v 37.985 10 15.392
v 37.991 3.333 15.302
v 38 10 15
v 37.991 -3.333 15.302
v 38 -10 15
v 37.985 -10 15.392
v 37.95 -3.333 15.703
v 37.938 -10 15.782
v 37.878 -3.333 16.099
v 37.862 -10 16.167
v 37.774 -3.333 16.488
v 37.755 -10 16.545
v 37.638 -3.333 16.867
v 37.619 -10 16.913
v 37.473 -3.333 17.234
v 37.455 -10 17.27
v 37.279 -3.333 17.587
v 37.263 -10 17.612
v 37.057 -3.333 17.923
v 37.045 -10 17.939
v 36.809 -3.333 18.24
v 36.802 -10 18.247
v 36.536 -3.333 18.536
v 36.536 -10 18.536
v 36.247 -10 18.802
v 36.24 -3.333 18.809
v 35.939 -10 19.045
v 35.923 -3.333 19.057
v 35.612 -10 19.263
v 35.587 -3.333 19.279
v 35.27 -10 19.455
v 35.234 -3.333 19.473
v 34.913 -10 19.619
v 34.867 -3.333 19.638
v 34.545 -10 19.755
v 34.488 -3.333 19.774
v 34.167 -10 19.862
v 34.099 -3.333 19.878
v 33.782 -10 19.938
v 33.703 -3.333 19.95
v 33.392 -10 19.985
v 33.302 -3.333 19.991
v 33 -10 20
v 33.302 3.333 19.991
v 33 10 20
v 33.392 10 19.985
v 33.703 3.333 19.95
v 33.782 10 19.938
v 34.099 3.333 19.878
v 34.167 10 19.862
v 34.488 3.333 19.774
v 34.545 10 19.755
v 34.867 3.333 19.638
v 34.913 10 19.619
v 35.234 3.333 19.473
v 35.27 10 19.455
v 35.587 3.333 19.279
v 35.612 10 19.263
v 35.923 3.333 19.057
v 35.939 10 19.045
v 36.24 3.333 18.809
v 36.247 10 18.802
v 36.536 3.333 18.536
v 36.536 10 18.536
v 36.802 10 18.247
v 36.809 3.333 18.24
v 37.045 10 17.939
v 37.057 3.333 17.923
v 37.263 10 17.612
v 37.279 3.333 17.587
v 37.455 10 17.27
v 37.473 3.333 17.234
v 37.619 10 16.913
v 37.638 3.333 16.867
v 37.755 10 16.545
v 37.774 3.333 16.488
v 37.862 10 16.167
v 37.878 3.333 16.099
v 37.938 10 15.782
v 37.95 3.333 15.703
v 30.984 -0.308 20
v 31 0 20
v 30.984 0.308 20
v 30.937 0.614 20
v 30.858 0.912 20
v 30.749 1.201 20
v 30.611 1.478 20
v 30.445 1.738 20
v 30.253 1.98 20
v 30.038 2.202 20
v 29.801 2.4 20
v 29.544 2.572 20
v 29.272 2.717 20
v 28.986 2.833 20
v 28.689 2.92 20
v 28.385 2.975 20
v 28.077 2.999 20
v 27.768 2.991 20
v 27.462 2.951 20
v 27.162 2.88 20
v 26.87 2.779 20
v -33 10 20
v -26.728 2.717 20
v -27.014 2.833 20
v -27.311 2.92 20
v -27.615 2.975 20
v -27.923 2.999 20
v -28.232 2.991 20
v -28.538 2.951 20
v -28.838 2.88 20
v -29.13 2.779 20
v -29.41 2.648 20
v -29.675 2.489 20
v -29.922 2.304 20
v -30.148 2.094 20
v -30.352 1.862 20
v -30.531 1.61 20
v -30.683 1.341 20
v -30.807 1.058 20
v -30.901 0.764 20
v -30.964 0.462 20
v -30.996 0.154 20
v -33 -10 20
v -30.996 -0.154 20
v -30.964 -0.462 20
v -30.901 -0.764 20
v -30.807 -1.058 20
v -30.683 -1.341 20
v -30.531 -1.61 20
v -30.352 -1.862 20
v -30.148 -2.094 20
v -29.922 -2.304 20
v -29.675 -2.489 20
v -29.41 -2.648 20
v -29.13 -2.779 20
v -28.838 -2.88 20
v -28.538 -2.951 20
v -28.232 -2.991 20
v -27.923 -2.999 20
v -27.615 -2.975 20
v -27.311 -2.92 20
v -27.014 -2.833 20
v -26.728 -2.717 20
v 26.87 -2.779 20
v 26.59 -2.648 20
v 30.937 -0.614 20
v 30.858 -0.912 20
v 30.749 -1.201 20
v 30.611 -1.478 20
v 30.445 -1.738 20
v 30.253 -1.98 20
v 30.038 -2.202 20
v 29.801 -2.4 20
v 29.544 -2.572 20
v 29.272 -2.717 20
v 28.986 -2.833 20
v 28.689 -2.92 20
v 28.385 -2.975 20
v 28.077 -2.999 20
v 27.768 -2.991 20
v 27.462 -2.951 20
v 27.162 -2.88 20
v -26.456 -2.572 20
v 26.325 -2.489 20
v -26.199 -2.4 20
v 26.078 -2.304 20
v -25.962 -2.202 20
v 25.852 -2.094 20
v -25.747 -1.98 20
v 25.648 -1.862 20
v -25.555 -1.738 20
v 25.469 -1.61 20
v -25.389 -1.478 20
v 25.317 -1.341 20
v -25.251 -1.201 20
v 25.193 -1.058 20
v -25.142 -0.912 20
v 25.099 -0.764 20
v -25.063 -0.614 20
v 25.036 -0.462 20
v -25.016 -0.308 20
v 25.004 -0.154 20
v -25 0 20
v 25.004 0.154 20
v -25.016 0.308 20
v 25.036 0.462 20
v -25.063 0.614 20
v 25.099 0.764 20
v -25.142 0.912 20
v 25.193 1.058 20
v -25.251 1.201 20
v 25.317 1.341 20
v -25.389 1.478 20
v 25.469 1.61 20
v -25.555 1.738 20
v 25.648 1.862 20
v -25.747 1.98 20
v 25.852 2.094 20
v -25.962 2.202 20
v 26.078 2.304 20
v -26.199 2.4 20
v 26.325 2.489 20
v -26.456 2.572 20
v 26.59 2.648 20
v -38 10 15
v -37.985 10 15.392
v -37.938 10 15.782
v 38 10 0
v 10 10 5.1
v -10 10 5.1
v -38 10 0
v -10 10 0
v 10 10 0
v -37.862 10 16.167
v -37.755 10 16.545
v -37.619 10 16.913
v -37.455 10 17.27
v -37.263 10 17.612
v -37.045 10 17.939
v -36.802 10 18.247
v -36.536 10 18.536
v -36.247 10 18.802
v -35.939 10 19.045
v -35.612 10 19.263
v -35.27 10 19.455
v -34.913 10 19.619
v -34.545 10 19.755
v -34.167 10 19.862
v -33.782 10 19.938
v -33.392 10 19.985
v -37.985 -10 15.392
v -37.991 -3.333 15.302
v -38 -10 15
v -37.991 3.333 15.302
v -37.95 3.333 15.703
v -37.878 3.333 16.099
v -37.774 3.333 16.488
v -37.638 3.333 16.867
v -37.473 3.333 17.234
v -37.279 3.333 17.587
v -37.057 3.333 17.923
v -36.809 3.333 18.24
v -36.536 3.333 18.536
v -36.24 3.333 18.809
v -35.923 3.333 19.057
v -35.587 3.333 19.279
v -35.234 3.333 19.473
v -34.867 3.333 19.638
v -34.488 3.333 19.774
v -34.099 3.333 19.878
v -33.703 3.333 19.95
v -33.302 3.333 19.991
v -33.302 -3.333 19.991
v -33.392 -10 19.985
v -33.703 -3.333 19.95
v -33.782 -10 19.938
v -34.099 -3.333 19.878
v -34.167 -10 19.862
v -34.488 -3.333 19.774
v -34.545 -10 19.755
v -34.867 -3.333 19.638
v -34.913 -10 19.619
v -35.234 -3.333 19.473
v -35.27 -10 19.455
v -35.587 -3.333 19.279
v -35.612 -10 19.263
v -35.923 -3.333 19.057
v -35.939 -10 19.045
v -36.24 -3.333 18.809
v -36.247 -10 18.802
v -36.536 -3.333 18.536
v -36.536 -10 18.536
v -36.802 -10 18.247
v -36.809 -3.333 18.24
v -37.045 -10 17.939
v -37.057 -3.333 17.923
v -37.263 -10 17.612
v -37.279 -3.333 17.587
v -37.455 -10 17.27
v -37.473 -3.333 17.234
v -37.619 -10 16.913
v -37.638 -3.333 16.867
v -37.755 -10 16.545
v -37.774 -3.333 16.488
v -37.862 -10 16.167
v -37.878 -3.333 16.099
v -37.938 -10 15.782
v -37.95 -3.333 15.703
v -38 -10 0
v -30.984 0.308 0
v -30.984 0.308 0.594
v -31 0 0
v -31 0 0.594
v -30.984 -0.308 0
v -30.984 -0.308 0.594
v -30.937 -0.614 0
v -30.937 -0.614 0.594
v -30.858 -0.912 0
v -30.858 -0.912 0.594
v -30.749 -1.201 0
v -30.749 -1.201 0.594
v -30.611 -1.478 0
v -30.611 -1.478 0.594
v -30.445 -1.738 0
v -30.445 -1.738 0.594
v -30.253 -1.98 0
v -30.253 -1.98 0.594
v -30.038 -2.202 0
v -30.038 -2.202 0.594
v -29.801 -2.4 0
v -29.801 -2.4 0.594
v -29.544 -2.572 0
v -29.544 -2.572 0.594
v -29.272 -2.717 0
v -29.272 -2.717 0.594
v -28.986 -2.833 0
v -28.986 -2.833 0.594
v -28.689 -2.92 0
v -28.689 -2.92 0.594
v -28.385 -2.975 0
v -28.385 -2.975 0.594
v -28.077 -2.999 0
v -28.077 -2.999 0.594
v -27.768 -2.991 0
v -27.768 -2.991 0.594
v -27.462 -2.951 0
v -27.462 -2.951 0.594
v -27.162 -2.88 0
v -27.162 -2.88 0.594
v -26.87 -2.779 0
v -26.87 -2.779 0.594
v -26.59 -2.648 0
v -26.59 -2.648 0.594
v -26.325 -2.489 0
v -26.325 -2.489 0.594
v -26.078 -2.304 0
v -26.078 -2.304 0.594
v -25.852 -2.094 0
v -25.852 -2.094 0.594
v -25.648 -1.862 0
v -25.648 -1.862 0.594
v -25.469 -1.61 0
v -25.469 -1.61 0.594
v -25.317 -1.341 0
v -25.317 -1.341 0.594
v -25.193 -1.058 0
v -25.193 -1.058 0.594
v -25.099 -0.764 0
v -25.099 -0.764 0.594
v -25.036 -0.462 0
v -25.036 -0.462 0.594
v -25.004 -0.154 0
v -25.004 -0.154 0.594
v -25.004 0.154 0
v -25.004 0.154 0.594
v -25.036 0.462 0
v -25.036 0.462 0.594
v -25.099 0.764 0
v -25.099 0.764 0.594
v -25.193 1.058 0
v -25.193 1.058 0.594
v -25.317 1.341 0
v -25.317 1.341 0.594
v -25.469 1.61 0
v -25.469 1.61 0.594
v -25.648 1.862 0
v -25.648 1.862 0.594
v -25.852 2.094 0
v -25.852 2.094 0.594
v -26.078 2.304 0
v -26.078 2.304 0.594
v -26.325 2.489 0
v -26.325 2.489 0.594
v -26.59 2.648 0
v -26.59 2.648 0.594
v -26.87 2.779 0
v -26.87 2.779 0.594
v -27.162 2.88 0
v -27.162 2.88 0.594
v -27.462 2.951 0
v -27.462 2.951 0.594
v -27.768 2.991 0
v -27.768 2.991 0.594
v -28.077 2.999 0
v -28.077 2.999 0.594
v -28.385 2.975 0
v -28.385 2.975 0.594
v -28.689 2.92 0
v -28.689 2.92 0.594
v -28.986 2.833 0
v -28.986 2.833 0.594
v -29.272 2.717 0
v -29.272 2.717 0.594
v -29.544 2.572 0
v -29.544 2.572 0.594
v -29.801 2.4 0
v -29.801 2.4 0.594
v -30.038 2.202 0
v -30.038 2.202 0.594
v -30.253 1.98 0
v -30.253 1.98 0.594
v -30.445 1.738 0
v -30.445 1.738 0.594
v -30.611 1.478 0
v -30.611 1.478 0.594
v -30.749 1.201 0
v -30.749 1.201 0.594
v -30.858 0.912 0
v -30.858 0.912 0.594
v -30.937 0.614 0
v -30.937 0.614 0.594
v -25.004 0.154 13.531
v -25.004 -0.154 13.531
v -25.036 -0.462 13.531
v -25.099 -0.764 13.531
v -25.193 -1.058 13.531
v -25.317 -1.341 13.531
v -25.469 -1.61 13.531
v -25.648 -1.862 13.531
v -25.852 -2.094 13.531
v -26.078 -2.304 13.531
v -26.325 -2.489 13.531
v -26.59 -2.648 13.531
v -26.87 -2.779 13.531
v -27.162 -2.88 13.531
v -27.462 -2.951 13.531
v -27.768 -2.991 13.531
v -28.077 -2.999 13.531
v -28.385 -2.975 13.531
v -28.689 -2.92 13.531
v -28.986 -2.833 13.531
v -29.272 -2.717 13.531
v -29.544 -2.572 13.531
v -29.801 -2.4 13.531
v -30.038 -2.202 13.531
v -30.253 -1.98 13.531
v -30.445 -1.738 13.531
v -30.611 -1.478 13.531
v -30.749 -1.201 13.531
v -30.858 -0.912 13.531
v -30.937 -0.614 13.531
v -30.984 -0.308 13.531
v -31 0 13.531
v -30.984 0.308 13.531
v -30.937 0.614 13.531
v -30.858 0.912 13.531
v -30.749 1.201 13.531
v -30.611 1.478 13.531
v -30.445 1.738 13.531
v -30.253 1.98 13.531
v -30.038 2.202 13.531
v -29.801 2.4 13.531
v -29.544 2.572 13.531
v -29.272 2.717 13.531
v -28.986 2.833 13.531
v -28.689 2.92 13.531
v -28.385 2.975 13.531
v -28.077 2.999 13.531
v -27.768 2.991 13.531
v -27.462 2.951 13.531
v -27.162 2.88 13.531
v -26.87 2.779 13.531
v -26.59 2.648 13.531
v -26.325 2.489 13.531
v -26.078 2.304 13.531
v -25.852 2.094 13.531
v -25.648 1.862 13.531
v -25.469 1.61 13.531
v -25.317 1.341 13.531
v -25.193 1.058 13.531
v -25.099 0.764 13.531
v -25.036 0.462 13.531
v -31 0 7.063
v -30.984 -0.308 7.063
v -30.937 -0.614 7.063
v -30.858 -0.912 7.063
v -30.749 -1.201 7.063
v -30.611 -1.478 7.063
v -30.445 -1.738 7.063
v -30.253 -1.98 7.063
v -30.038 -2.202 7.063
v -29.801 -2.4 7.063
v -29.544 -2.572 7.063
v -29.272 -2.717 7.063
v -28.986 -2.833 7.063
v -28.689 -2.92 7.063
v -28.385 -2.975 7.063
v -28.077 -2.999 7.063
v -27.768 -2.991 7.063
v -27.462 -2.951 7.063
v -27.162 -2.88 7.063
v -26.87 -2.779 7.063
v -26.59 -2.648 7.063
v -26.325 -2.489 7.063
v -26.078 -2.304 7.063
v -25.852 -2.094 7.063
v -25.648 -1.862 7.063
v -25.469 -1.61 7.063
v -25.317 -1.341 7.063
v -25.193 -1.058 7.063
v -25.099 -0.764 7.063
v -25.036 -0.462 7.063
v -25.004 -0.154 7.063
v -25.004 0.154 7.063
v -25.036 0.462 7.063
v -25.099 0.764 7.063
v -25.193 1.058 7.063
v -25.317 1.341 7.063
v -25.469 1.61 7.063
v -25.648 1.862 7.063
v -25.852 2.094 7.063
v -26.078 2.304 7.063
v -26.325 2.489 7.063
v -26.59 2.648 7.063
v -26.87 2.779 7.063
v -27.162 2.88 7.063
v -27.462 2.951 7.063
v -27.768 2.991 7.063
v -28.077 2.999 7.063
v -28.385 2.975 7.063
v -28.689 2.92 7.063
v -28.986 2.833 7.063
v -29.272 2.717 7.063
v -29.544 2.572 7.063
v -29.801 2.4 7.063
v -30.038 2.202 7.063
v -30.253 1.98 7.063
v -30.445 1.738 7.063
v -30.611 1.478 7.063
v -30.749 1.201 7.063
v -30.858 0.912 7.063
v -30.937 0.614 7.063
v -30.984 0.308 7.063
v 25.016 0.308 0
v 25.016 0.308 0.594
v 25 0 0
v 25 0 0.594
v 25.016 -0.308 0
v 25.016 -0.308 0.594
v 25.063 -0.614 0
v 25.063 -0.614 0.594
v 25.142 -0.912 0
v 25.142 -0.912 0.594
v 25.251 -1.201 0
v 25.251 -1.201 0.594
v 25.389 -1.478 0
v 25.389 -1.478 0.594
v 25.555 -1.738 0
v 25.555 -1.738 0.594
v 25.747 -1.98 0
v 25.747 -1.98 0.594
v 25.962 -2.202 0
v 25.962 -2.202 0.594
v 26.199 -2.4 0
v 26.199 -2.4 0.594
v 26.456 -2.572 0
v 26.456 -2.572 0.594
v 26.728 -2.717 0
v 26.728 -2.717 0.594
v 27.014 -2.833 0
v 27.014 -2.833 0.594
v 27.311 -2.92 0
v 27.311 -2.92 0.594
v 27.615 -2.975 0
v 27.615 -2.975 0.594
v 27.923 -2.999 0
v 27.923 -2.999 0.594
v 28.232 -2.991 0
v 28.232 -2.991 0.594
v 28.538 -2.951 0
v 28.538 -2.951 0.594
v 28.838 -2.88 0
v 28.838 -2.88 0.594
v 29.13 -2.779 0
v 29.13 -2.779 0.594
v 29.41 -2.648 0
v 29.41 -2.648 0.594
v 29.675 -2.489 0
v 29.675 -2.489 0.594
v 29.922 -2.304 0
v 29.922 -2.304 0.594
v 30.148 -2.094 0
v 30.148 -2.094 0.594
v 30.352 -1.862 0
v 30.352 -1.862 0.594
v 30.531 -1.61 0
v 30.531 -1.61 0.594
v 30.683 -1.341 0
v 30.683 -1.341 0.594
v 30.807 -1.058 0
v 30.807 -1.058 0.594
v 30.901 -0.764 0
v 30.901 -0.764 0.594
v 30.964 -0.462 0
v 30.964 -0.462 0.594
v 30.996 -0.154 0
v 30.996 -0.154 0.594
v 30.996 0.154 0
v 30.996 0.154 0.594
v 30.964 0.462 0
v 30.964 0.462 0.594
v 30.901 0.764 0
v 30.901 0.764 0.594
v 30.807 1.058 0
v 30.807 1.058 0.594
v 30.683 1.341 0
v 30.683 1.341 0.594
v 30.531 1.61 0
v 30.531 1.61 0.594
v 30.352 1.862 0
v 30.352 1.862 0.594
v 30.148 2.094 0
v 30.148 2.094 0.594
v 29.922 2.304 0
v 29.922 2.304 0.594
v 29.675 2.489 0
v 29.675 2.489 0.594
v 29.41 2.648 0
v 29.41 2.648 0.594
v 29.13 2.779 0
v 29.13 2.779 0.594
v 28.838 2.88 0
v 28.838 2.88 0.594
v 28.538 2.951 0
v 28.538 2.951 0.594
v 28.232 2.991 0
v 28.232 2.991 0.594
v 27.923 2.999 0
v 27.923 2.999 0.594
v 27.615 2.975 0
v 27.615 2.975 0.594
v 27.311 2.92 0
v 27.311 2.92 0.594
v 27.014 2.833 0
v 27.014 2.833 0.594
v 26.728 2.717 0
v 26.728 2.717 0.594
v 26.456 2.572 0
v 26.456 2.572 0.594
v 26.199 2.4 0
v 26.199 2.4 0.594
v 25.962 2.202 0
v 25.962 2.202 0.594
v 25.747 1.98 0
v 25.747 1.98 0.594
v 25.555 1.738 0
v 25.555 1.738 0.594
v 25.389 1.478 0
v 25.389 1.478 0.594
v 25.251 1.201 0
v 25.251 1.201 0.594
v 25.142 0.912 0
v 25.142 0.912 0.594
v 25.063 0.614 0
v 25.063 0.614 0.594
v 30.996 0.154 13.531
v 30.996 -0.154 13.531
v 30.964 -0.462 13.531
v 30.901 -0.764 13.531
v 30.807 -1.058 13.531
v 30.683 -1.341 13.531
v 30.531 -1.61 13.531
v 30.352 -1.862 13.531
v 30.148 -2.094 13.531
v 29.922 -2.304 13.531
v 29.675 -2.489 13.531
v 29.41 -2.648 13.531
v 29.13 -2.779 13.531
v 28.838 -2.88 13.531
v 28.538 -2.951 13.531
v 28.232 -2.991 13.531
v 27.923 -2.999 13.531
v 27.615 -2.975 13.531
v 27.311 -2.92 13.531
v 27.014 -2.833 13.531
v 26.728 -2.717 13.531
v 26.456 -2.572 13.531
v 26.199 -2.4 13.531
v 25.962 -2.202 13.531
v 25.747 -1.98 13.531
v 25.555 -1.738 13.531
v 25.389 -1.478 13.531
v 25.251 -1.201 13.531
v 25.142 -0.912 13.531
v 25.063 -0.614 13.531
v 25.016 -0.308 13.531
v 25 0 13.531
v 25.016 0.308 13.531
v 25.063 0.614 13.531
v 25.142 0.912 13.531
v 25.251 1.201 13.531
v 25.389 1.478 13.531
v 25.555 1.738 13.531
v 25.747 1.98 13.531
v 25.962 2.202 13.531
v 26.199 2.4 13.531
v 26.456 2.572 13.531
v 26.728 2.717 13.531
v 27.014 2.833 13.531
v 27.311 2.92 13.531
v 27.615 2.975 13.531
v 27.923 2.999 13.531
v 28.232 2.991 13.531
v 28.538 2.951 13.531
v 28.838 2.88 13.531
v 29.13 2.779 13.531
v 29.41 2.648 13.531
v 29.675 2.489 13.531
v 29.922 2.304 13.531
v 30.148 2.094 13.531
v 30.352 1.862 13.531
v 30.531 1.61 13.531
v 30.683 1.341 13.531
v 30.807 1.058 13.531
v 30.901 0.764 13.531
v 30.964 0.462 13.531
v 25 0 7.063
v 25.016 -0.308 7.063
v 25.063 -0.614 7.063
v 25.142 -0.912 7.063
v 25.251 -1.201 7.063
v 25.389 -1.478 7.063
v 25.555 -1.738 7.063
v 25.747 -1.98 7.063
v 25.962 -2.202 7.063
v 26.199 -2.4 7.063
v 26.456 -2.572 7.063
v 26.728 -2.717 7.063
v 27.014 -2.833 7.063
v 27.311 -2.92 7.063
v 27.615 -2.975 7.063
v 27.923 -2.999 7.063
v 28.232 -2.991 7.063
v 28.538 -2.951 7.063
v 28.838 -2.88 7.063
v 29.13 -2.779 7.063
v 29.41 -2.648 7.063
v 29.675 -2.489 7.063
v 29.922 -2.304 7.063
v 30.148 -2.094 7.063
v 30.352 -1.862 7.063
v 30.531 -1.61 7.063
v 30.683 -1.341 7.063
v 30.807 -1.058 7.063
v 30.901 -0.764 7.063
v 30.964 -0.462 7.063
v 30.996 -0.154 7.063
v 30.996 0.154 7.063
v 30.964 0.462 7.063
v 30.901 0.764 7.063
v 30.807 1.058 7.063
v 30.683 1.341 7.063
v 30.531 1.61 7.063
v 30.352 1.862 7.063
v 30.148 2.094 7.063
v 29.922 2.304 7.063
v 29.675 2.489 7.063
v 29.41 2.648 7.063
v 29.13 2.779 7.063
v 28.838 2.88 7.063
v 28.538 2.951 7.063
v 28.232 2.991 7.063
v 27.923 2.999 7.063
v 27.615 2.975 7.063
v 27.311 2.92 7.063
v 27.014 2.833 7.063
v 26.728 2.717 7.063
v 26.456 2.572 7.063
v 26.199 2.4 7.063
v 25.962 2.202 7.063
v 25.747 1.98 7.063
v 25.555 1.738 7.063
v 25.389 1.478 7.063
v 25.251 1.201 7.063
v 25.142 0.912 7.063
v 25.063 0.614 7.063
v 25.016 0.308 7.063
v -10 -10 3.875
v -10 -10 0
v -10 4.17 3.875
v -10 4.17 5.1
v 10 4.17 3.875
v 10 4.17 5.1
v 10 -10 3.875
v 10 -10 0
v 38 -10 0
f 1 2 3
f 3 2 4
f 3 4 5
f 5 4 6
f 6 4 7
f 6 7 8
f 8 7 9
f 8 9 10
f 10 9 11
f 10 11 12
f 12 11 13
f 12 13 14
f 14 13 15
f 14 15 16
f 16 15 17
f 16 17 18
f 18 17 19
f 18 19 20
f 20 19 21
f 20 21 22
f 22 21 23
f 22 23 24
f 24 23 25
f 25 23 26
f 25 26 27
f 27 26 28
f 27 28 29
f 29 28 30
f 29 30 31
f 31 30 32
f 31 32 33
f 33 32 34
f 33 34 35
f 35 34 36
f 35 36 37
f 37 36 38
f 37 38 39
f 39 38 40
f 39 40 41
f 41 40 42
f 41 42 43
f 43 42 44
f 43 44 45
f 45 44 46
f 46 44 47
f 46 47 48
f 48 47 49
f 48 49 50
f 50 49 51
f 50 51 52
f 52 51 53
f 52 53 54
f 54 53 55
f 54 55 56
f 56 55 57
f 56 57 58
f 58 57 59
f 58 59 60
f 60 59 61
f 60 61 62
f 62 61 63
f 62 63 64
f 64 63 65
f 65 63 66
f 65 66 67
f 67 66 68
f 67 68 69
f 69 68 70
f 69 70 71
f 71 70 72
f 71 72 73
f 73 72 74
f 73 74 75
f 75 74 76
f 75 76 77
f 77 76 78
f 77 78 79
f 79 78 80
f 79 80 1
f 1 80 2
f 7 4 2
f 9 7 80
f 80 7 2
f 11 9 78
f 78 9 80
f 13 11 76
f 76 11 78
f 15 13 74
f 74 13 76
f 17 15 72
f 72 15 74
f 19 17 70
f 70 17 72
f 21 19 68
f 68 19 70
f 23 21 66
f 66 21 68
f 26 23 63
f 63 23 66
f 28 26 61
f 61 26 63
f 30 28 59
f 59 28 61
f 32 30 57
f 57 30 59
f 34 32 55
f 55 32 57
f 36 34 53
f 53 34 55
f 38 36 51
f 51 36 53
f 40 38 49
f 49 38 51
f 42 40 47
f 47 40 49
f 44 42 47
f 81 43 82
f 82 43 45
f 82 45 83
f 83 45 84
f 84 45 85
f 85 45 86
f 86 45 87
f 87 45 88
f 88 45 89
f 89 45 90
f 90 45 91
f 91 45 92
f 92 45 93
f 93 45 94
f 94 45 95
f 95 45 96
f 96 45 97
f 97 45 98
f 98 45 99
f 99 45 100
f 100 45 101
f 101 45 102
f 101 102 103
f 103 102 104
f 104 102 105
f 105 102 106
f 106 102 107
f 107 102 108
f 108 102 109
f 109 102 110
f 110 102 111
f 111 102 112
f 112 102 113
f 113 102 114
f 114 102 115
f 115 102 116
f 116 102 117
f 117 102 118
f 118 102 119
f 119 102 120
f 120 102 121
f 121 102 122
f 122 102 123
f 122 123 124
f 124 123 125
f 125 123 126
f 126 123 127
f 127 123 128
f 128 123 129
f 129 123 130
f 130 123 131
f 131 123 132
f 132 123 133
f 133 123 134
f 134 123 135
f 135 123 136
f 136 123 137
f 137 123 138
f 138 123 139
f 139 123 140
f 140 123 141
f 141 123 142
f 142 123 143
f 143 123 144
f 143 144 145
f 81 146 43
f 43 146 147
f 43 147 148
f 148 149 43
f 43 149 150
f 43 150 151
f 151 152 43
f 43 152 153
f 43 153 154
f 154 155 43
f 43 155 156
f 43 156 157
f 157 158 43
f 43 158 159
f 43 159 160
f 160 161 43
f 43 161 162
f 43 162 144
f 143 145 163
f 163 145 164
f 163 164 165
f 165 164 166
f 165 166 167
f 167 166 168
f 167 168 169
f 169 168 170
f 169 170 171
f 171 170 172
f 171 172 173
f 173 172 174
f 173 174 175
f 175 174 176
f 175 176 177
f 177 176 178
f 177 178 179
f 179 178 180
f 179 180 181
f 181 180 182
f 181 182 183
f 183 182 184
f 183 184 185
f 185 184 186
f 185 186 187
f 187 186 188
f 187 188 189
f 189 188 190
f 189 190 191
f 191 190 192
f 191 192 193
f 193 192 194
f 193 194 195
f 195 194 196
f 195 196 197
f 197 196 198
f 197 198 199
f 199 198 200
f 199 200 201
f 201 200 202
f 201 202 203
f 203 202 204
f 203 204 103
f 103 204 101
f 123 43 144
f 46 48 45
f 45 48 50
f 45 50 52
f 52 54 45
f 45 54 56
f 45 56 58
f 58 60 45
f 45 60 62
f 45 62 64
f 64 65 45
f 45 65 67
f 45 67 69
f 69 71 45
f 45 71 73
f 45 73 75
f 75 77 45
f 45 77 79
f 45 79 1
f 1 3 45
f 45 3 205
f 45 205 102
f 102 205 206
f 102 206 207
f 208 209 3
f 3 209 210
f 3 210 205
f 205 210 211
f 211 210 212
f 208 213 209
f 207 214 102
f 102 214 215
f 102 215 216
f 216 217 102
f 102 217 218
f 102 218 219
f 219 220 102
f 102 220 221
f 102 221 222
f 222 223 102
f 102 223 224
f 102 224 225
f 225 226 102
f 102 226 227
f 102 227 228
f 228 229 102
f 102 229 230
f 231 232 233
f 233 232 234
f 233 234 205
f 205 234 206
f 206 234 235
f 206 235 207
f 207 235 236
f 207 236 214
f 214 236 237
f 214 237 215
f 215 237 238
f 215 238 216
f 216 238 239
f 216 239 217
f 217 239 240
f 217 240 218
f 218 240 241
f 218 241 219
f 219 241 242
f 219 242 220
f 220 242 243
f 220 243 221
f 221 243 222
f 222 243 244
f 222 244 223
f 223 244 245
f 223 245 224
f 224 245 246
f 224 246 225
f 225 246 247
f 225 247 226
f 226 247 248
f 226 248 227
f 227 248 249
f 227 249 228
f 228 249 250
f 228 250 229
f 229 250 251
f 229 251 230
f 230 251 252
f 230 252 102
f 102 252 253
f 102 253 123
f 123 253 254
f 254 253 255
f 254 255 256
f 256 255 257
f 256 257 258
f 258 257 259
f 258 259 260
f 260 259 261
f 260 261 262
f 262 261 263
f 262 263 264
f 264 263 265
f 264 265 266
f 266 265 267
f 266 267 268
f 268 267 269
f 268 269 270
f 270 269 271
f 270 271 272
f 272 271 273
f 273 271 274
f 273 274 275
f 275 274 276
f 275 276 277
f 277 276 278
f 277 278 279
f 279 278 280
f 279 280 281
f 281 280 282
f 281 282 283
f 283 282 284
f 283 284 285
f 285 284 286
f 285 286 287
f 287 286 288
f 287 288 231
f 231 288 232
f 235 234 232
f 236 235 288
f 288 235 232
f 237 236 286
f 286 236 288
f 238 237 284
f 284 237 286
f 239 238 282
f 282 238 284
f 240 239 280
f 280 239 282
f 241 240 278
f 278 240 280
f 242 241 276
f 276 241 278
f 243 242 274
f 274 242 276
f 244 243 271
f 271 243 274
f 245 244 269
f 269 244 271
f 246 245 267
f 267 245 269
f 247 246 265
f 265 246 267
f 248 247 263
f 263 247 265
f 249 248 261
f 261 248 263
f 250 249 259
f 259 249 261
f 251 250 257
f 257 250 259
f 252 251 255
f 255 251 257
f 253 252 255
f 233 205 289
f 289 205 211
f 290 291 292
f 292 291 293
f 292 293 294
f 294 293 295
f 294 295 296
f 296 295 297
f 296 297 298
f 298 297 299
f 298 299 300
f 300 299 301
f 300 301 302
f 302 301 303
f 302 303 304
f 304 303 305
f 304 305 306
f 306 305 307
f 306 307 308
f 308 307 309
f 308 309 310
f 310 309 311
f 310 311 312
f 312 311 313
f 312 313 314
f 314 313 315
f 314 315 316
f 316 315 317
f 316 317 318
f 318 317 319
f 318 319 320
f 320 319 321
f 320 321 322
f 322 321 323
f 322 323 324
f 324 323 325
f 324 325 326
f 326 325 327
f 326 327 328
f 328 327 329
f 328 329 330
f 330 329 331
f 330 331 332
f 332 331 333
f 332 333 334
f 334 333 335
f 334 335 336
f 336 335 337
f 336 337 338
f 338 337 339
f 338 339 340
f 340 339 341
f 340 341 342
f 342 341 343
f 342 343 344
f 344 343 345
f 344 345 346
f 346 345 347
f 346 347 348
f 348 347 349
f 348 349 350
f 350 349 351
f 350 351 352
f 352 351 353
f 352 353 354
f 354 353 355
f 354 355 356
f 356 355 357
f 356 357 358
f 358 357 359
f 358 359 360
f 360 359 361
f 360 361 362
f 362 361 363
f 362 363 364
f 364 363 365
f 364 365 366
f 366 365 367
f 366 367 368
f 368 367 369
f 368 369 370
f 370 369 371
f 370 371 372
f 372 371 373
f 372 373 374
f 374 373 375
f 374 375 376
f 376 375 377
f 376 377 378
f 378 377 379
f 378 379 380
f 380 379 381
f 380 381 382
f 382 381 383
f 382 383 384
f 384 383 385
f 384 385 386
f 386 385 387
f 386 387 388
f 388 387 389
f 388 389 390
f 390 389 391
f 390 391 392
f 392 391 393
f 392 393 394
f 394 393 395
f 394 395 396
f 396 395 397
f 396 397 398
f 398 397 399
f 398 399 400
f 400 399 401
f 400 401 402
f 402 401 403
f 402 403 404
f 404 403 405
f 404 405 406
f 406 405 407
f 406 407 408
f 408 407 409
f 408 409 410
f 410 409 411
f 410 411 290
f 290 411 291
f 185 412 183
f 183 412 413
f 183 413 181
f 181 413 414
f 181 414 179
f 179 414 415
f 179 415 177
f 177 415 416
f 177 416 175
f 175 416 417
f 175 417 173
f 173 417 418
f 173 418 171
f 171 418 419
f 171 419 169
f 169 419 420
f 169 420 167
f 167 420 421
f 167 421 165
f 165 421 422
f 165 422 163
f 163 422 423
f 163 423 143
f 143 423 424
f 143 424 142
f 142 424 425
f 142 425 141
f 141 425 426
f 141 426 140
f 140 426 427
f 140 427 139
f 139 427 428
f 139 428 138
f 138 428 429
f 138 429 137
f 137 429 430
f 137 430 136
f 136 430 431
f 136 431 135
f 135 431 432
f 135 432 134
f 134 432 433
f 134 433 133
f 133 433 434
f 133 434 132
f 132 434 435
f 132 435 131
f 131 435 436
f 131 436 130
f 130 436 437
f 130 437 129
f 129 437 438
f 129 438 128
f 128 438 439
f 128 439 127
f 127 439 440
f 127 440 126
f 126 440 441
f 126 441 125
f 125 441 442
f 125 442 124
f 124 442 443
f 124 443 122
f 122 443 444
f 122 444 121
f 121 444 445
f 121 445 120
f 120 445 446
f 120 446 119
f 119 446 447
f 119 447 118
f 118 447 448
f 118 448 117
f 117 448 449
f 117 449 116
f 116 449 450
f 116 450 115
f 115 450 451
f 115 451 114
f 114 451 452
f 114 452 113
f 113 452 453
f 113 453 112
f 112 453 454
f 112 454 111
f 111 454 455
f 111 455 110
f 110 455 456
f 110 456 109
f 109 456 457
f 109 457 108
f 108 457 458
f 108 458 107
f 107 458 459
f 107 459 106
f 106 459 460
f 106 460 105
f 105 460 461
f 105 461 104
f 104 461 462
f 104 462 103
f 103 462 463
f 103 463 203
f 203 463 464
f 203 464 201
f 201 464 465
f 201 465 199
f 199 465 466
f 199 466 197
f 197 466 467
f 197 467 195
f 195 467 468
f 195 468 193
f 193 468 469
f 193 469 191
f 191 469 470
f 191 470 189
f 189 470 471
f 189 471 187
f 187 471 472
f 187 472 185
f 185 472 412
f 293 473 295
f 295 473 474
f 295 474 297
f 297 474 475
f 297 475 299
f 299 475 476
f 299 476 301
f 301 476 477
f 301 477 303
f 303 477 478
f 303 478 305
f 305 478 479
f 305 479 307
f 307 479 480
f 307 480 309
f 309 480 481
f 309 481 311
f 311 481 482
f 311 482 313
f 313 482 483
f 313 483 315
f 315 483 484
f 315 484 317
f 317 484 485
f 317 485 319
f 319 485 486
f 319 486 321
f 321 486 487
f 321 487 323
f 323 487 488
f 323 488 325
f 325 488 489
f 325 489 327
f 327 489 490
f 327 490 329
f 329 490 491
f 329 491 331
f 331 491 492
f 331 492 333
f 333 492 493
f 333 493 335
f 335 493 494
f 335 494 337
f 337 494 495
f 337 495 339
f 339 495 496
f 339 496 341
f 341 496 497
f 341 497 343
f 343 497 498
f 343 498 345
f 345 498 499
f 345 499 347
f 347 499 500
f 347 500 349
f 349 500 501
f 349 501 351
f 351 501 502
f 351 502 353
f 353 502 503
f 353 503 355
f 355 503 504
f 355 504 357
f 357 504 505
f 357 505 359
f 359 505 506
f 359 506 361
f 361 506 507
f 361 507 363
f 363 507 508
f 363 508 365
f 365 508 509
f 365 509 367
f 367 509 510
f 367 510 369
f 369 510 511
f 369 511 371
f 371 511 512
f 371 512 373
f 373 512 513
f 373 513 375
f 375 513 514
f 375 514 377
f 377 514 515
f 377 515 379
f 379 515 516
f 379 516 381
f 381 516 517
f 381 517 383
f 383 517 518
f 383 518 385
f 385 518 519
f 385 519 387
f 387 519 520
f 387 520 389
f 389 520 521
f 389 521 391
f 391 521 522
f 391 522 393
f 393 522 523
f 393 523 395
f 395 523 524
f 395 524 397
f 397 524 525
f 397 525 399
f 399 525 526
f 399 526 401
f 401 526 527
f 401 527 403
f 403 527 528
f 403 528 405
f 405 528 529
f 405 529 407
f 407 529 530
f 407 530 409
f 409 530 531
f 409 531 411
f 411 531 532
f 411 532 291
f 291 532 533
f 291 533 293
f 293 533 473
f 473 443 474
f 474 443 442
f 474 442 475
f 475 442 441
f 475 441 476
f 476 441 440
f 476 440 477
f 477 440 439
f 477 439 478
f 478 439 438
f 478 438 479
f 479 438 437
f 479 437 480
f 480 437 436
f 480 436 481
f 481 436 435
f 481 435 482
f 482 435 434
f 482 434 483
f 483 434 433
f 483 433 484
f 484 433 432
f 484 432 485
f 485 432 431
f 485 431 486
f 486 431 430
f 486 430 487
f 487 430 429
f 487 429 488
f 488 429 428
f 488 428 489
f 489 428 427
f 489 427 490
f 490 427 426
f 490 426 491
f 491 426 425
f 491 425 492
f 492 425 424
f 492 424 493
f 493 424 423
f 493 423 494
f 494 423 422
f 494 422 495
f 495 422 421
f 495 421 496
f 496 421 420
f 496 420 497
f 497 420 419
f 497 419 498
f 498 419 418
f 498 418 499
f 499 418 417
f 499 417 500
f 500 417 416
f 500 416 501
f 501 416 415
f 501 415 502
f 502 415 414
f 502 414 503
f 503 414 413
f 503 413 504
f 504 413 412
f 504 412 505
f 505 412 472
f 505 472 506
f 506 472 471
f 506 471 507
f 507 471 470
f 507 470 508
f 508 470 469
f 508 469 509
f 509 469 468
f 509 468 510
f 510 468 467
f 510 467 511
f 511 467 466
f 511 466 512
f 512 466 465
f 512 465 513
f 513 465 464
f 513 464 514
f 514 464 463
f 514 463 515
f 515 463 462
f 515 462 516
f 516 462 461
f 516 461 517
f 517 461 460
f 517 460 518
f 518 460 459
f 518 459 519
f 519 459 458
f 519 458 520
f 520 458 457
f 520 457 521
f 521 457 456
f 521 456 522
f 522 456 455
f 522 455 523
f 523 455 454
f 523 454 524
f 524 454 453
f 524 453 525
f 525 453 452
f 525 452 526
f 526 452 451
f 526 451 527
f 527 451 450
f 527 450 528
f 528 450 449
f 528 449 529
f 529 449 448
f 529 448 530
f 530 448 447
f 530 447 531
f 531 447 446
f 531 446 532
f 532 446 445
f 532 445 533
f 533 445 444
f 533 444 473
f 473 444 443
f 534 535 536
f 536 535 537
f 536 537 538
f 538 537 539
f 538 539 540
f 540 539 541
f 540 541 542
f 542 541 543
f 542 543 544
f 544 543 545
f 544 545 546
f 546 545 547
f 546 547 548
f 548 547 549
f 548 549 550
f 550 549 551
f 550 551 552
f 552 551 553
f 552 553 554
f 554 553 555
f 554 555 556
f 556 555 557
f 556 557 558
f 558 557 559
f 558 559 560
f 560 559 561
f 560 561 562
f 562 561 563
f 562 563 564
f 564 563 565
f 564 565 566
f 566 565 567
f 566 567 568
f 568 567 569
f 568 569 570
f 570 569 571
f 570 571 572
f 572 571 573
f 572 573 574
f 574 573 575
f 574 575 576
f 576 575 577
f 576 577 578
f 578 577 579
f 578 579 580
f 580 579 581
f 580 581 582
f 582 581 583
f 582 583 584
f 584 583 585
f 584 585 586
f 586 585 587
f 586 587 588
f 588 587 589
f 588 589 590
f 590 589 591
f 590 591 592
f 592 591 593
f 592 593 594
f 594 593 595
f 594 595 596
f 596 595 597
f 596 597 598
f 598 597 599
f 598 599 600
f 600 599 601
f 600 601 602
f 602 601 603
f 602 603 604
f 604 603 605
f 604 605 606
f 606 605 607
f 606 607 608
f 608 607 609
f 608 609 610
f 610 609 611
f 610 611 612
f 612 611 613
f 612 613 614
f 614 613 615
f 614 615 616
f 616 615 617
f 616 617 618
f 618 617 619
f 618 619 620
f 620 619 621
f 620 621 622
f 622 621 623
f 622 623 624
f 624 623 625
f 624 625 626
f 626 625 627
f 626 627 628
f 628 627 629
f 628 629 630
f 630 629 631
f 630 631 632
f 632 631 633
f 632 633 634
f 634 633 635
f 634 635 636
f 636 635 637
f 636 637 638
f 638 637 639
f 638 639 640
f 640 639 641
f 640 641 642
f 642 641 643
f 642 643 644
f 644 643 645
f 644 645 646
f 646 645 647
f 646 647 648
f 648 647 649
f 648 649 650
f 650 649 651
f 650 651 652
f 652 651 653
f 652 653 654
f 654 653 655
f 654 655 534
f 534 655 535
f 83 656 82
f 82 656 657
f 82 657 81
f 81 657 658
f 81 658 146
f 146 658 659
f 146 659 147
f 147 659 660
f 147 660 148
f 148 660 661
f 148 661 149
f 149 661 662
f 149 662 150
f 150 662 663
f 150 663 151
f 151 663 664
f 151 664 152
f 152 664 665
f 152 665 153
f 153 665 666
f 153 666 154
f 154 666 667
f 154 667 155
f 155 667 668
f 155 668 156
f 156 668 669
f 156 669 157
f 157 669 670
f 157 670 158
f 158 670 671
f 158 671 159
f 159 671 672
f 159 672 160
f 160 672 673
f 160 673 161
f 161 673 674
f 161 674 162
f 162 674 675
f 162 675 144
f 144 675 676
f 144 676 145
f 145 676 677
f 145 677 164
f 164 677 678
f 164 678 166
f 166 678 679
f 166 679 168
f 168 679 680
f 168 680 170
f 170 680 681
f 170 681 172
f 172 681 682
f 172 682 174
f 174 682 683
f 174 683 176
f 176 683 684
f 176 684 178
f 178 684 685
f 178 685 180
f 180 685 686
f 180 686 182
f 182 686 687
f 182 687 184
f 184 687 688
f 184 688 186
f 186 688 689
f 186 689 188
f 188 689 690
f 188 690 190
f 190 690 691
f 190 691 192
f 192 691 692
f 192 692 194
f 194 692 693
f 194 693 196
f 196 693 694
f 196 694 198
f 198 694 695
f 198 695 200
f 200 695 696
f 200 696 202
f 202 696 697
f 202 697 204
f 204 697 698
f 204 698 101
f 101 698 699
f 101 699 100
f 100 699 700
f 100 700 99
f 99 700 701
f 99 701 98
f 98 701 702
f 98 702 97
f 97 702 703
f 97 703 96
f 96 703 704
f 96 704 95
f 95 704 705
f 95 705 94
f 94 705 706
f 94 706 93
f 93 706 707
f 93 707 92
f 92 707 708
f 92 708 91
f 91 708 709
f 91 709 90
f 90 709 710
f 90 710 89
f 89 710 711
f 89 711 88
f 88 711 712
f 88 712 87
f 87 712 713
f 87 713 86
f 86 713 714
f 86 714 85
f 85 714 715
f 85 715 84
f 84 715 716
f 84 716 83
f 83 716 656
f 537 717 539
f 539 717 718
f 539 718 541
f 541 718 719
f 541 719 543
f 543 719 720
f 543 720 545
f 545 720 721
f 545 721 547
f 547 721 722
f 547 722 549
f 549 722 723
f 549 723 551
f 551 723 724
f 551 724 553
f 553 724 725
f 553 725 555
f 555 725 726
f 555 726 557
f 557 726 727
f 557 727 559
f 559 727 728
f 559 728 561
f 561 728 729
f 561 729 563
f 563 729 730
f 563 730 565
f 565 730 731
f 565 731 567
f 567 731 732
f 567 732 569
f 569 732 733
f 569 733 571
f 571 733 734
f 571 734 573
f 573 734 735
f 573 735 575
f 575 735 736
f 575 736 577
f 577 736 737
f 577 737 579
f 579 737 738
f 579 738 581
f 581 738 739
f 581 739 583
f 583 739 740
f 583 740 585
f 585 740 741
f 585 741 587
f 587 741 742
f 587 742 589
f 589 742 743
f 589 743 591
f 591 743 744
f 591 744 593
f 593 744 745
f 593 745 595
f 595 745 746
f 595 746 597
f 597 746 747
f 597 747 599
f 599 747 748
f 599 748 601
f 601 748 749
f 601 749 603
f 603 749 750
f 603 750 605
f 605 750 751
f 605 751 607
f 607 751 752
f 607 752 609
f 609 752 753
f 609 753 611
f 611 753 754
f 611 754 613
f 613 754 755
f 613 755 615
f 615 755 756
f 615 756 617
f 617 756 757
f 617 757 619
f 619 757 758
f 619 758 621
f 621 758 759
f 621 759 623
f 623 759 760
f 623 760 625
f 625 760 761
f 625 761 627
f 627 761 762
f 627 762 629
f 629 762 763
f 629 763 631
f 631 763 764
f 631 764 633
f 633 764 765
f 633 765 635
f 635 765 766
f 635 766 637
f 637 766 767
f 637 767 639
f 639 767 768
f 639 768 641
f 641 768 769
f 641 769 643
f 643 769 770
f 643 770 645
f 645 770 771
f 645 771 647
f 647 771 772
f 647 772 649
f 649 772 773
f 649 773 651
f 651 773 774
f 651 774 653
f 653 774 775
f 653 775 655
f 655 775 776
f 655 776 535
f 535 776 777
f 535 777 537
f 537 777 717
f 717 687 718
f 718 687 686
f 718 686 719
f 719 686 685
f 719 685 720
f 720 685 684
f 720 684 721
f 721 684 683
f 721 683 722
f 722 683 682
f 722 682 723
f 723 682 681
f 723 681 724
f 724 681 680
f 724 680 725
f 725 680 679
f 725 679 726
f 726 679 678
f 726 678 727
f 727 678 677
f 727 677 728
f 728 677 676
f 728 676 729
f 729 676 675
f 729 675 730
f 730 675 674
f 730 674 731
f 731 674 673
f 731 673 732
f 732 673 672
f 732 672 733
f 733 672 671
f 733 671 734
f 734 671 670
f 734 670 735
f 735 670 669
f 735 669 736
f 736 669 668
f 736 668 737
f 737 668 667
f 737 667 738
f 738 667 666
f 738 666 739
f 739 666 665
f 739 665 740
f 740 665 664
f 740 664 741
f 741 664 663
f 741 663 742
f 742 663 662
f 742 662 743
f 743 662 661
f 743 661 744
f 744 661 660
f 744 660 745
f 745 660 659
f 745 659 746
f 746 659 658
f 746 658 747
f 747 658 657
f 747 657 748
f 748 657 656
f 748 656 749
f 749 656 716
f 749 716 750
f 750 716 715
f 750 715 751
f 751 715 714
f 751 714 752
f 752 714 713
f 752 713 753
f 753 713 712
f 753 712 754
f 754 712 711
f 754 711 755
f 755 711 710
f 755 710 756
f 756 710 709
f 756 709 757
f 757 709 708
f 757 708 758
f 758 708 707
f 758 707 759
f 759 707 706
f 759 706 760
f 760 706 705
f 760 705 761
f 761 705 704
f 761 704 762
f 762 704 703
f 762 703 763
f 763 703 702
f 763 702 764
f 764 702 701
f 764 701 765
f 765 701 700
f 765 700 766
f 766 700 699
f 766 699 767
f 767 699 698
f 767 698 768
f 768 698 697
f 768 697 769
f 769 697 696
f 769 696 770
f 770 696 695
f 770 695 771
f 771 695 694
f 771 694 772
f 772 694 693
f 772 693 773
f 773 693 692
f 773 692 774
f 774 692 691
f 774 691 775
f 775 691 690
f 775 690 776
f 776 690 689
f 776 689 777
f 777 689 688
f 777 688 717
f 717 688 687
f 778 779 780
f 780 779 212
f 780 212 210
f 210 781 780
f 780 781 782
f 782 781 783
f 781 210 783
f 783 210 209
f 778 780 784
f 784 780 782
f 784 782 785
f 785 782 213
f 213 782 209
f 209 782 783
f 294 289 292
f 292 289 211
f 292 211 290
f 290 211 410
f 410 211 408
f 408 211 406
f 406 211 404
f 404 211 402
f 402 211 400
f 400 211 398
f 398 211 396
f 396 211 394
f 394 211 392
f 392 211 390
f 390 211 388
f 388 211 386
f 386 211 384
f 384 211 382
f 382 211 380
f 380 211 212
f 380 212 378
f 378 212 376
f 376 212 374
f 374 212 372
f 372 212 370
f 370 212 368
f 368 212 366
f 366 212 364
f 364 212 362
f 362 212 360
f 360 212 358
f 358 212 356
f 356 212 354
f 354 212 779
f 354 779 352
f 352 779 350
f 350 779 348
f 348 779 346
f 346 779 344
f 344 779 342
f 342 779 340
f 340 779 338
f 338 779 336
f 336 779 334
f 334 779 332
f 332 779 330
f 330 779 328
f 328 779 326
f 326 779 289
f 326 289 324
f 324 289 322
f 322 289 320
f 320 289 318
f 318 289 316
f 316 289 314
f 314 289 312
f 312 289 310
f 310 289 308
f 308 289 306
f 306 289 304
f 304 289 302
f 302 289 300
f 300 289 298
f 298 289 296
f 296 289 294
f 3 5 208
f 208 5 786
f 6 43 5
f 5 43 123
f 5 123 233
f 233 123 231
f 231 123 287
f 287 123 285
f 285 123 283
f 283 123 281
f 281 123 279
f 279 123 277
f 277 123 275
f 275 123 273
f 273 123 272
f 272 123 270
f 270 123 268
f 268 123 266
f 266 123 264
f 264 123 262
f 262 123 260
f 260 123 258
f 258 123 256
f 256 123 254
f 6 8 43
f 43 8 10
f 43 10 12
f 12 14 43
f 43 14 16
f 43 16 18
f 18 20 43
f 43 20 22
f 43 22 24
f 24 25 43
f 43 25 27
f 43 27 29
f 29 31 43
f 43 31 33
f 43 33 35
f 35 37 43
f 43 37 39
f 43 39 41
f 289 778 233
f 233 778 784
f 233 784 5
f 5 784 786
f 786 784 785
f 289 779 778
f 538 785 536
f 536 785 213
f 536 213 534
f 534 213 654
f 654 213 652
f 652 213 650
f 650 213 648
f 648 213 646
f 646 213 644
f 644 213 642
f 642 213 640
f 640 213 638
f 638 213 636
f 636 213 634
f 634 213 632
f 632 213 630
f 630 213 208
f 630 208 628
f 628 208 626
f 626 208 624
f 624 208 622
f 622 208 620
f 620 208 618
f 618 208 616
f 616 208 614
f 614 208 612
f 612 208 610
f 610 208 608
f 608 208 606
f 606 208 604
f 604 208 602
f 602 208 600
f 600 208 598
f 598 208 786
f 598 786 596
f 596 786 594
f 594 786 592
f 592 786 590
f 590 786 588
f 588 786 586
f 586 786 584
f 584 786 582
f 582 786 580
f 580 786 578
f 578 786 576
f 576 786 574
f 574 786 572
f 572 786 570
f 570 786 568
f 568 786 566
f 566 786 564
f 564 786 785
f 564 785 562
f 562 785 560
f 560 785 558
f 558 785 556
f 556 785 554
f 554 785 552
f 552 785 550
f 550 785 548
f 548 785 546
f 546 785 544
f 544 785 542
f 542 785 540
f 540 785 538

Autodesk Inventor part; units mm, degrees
ref_plane "YZ Plane" through (0, 0, 0) normal (1, 0, 0) x (0, 1, 0)
ref_plane "XZ Plane" through (0, 0, 0) normal (0, 1, 0) x (-1, 0, 0)
ref_plane "XY Plane" through (0, 0, 0) normal (0, 0, 1) x (1, 0, 0)
sketch "Sketch1" plane through (0, 0, 0) normal (0, 0, 1) x (1, 0, 0)
  line L0 (-38, 10) -> (38, 10)
  line L1 (38, 10) -> (38, -10)
  line L2 (38, -10) -> (-38, -10)
  line L3 (-38, -10) -> (-38, 10)
  point P0 (0, 0)
  point P1 (-38, 0)
  point P2 (0, 10)
  dimension "d0" = 76
  dimension "d1" = 20
extrude "Extrusion1" add sketch "Sketch1" along normal blind 20
sketch "Sketch6" plane through (0, 0, 0) normal (1, 0, 0) x (0, 1, 0)
  line L0 (12, 5.4) -> (4.47, 5.4)
  line L1 (4.47, 4.175) -> (-0.23, 4.175) projected
  line L2 (10, 0) -> (10, 20) projected
  line L3 (-10, 0) -> (-10, 20) projected
  line L4 (10, 5.1) -> (4.17, 5.1)
  line L5 (4.17, 5.1) -> (4.17, 3.875)
  line L6 (4.17, 3.875) -> (-10, 3.875)
  line L7 (10, 0) -> (-10, 0) projected
  point P0 (0, 0)
  point P1 (4.17, 0)
  dimension "d16" = 0.3
  dimension "d17" = 0.3
  dimension "d18" = 0.3
extrude "Extrusion5" cut sketch "Sketch6" along normal mid plane 20
sketch "Sketch7" plane through (0, 0, 20) normal (0, 0, 1) x (1, 0, 0)
  line L0 (-38, 10) -> (-38, -10) projected
  line L1 (38, -10) -> (38, 10) projected
  point P0 (0, 0)
  point P1 (28, 0)
  point P2 (-28, 0)
  dimension "d21" = 10
  dimension "d22" = 10
hole "Hole1" at (-28, 0, 20) at (28, 0, 20) direction (0, 0, -1) diameter 6 end through all
fillet "Fillet3" radius 5 2 edges at (-38, 0, 20) (38, 0, 20)
equation "\"d22\" = d21"
properties part number "0008-30-013"
